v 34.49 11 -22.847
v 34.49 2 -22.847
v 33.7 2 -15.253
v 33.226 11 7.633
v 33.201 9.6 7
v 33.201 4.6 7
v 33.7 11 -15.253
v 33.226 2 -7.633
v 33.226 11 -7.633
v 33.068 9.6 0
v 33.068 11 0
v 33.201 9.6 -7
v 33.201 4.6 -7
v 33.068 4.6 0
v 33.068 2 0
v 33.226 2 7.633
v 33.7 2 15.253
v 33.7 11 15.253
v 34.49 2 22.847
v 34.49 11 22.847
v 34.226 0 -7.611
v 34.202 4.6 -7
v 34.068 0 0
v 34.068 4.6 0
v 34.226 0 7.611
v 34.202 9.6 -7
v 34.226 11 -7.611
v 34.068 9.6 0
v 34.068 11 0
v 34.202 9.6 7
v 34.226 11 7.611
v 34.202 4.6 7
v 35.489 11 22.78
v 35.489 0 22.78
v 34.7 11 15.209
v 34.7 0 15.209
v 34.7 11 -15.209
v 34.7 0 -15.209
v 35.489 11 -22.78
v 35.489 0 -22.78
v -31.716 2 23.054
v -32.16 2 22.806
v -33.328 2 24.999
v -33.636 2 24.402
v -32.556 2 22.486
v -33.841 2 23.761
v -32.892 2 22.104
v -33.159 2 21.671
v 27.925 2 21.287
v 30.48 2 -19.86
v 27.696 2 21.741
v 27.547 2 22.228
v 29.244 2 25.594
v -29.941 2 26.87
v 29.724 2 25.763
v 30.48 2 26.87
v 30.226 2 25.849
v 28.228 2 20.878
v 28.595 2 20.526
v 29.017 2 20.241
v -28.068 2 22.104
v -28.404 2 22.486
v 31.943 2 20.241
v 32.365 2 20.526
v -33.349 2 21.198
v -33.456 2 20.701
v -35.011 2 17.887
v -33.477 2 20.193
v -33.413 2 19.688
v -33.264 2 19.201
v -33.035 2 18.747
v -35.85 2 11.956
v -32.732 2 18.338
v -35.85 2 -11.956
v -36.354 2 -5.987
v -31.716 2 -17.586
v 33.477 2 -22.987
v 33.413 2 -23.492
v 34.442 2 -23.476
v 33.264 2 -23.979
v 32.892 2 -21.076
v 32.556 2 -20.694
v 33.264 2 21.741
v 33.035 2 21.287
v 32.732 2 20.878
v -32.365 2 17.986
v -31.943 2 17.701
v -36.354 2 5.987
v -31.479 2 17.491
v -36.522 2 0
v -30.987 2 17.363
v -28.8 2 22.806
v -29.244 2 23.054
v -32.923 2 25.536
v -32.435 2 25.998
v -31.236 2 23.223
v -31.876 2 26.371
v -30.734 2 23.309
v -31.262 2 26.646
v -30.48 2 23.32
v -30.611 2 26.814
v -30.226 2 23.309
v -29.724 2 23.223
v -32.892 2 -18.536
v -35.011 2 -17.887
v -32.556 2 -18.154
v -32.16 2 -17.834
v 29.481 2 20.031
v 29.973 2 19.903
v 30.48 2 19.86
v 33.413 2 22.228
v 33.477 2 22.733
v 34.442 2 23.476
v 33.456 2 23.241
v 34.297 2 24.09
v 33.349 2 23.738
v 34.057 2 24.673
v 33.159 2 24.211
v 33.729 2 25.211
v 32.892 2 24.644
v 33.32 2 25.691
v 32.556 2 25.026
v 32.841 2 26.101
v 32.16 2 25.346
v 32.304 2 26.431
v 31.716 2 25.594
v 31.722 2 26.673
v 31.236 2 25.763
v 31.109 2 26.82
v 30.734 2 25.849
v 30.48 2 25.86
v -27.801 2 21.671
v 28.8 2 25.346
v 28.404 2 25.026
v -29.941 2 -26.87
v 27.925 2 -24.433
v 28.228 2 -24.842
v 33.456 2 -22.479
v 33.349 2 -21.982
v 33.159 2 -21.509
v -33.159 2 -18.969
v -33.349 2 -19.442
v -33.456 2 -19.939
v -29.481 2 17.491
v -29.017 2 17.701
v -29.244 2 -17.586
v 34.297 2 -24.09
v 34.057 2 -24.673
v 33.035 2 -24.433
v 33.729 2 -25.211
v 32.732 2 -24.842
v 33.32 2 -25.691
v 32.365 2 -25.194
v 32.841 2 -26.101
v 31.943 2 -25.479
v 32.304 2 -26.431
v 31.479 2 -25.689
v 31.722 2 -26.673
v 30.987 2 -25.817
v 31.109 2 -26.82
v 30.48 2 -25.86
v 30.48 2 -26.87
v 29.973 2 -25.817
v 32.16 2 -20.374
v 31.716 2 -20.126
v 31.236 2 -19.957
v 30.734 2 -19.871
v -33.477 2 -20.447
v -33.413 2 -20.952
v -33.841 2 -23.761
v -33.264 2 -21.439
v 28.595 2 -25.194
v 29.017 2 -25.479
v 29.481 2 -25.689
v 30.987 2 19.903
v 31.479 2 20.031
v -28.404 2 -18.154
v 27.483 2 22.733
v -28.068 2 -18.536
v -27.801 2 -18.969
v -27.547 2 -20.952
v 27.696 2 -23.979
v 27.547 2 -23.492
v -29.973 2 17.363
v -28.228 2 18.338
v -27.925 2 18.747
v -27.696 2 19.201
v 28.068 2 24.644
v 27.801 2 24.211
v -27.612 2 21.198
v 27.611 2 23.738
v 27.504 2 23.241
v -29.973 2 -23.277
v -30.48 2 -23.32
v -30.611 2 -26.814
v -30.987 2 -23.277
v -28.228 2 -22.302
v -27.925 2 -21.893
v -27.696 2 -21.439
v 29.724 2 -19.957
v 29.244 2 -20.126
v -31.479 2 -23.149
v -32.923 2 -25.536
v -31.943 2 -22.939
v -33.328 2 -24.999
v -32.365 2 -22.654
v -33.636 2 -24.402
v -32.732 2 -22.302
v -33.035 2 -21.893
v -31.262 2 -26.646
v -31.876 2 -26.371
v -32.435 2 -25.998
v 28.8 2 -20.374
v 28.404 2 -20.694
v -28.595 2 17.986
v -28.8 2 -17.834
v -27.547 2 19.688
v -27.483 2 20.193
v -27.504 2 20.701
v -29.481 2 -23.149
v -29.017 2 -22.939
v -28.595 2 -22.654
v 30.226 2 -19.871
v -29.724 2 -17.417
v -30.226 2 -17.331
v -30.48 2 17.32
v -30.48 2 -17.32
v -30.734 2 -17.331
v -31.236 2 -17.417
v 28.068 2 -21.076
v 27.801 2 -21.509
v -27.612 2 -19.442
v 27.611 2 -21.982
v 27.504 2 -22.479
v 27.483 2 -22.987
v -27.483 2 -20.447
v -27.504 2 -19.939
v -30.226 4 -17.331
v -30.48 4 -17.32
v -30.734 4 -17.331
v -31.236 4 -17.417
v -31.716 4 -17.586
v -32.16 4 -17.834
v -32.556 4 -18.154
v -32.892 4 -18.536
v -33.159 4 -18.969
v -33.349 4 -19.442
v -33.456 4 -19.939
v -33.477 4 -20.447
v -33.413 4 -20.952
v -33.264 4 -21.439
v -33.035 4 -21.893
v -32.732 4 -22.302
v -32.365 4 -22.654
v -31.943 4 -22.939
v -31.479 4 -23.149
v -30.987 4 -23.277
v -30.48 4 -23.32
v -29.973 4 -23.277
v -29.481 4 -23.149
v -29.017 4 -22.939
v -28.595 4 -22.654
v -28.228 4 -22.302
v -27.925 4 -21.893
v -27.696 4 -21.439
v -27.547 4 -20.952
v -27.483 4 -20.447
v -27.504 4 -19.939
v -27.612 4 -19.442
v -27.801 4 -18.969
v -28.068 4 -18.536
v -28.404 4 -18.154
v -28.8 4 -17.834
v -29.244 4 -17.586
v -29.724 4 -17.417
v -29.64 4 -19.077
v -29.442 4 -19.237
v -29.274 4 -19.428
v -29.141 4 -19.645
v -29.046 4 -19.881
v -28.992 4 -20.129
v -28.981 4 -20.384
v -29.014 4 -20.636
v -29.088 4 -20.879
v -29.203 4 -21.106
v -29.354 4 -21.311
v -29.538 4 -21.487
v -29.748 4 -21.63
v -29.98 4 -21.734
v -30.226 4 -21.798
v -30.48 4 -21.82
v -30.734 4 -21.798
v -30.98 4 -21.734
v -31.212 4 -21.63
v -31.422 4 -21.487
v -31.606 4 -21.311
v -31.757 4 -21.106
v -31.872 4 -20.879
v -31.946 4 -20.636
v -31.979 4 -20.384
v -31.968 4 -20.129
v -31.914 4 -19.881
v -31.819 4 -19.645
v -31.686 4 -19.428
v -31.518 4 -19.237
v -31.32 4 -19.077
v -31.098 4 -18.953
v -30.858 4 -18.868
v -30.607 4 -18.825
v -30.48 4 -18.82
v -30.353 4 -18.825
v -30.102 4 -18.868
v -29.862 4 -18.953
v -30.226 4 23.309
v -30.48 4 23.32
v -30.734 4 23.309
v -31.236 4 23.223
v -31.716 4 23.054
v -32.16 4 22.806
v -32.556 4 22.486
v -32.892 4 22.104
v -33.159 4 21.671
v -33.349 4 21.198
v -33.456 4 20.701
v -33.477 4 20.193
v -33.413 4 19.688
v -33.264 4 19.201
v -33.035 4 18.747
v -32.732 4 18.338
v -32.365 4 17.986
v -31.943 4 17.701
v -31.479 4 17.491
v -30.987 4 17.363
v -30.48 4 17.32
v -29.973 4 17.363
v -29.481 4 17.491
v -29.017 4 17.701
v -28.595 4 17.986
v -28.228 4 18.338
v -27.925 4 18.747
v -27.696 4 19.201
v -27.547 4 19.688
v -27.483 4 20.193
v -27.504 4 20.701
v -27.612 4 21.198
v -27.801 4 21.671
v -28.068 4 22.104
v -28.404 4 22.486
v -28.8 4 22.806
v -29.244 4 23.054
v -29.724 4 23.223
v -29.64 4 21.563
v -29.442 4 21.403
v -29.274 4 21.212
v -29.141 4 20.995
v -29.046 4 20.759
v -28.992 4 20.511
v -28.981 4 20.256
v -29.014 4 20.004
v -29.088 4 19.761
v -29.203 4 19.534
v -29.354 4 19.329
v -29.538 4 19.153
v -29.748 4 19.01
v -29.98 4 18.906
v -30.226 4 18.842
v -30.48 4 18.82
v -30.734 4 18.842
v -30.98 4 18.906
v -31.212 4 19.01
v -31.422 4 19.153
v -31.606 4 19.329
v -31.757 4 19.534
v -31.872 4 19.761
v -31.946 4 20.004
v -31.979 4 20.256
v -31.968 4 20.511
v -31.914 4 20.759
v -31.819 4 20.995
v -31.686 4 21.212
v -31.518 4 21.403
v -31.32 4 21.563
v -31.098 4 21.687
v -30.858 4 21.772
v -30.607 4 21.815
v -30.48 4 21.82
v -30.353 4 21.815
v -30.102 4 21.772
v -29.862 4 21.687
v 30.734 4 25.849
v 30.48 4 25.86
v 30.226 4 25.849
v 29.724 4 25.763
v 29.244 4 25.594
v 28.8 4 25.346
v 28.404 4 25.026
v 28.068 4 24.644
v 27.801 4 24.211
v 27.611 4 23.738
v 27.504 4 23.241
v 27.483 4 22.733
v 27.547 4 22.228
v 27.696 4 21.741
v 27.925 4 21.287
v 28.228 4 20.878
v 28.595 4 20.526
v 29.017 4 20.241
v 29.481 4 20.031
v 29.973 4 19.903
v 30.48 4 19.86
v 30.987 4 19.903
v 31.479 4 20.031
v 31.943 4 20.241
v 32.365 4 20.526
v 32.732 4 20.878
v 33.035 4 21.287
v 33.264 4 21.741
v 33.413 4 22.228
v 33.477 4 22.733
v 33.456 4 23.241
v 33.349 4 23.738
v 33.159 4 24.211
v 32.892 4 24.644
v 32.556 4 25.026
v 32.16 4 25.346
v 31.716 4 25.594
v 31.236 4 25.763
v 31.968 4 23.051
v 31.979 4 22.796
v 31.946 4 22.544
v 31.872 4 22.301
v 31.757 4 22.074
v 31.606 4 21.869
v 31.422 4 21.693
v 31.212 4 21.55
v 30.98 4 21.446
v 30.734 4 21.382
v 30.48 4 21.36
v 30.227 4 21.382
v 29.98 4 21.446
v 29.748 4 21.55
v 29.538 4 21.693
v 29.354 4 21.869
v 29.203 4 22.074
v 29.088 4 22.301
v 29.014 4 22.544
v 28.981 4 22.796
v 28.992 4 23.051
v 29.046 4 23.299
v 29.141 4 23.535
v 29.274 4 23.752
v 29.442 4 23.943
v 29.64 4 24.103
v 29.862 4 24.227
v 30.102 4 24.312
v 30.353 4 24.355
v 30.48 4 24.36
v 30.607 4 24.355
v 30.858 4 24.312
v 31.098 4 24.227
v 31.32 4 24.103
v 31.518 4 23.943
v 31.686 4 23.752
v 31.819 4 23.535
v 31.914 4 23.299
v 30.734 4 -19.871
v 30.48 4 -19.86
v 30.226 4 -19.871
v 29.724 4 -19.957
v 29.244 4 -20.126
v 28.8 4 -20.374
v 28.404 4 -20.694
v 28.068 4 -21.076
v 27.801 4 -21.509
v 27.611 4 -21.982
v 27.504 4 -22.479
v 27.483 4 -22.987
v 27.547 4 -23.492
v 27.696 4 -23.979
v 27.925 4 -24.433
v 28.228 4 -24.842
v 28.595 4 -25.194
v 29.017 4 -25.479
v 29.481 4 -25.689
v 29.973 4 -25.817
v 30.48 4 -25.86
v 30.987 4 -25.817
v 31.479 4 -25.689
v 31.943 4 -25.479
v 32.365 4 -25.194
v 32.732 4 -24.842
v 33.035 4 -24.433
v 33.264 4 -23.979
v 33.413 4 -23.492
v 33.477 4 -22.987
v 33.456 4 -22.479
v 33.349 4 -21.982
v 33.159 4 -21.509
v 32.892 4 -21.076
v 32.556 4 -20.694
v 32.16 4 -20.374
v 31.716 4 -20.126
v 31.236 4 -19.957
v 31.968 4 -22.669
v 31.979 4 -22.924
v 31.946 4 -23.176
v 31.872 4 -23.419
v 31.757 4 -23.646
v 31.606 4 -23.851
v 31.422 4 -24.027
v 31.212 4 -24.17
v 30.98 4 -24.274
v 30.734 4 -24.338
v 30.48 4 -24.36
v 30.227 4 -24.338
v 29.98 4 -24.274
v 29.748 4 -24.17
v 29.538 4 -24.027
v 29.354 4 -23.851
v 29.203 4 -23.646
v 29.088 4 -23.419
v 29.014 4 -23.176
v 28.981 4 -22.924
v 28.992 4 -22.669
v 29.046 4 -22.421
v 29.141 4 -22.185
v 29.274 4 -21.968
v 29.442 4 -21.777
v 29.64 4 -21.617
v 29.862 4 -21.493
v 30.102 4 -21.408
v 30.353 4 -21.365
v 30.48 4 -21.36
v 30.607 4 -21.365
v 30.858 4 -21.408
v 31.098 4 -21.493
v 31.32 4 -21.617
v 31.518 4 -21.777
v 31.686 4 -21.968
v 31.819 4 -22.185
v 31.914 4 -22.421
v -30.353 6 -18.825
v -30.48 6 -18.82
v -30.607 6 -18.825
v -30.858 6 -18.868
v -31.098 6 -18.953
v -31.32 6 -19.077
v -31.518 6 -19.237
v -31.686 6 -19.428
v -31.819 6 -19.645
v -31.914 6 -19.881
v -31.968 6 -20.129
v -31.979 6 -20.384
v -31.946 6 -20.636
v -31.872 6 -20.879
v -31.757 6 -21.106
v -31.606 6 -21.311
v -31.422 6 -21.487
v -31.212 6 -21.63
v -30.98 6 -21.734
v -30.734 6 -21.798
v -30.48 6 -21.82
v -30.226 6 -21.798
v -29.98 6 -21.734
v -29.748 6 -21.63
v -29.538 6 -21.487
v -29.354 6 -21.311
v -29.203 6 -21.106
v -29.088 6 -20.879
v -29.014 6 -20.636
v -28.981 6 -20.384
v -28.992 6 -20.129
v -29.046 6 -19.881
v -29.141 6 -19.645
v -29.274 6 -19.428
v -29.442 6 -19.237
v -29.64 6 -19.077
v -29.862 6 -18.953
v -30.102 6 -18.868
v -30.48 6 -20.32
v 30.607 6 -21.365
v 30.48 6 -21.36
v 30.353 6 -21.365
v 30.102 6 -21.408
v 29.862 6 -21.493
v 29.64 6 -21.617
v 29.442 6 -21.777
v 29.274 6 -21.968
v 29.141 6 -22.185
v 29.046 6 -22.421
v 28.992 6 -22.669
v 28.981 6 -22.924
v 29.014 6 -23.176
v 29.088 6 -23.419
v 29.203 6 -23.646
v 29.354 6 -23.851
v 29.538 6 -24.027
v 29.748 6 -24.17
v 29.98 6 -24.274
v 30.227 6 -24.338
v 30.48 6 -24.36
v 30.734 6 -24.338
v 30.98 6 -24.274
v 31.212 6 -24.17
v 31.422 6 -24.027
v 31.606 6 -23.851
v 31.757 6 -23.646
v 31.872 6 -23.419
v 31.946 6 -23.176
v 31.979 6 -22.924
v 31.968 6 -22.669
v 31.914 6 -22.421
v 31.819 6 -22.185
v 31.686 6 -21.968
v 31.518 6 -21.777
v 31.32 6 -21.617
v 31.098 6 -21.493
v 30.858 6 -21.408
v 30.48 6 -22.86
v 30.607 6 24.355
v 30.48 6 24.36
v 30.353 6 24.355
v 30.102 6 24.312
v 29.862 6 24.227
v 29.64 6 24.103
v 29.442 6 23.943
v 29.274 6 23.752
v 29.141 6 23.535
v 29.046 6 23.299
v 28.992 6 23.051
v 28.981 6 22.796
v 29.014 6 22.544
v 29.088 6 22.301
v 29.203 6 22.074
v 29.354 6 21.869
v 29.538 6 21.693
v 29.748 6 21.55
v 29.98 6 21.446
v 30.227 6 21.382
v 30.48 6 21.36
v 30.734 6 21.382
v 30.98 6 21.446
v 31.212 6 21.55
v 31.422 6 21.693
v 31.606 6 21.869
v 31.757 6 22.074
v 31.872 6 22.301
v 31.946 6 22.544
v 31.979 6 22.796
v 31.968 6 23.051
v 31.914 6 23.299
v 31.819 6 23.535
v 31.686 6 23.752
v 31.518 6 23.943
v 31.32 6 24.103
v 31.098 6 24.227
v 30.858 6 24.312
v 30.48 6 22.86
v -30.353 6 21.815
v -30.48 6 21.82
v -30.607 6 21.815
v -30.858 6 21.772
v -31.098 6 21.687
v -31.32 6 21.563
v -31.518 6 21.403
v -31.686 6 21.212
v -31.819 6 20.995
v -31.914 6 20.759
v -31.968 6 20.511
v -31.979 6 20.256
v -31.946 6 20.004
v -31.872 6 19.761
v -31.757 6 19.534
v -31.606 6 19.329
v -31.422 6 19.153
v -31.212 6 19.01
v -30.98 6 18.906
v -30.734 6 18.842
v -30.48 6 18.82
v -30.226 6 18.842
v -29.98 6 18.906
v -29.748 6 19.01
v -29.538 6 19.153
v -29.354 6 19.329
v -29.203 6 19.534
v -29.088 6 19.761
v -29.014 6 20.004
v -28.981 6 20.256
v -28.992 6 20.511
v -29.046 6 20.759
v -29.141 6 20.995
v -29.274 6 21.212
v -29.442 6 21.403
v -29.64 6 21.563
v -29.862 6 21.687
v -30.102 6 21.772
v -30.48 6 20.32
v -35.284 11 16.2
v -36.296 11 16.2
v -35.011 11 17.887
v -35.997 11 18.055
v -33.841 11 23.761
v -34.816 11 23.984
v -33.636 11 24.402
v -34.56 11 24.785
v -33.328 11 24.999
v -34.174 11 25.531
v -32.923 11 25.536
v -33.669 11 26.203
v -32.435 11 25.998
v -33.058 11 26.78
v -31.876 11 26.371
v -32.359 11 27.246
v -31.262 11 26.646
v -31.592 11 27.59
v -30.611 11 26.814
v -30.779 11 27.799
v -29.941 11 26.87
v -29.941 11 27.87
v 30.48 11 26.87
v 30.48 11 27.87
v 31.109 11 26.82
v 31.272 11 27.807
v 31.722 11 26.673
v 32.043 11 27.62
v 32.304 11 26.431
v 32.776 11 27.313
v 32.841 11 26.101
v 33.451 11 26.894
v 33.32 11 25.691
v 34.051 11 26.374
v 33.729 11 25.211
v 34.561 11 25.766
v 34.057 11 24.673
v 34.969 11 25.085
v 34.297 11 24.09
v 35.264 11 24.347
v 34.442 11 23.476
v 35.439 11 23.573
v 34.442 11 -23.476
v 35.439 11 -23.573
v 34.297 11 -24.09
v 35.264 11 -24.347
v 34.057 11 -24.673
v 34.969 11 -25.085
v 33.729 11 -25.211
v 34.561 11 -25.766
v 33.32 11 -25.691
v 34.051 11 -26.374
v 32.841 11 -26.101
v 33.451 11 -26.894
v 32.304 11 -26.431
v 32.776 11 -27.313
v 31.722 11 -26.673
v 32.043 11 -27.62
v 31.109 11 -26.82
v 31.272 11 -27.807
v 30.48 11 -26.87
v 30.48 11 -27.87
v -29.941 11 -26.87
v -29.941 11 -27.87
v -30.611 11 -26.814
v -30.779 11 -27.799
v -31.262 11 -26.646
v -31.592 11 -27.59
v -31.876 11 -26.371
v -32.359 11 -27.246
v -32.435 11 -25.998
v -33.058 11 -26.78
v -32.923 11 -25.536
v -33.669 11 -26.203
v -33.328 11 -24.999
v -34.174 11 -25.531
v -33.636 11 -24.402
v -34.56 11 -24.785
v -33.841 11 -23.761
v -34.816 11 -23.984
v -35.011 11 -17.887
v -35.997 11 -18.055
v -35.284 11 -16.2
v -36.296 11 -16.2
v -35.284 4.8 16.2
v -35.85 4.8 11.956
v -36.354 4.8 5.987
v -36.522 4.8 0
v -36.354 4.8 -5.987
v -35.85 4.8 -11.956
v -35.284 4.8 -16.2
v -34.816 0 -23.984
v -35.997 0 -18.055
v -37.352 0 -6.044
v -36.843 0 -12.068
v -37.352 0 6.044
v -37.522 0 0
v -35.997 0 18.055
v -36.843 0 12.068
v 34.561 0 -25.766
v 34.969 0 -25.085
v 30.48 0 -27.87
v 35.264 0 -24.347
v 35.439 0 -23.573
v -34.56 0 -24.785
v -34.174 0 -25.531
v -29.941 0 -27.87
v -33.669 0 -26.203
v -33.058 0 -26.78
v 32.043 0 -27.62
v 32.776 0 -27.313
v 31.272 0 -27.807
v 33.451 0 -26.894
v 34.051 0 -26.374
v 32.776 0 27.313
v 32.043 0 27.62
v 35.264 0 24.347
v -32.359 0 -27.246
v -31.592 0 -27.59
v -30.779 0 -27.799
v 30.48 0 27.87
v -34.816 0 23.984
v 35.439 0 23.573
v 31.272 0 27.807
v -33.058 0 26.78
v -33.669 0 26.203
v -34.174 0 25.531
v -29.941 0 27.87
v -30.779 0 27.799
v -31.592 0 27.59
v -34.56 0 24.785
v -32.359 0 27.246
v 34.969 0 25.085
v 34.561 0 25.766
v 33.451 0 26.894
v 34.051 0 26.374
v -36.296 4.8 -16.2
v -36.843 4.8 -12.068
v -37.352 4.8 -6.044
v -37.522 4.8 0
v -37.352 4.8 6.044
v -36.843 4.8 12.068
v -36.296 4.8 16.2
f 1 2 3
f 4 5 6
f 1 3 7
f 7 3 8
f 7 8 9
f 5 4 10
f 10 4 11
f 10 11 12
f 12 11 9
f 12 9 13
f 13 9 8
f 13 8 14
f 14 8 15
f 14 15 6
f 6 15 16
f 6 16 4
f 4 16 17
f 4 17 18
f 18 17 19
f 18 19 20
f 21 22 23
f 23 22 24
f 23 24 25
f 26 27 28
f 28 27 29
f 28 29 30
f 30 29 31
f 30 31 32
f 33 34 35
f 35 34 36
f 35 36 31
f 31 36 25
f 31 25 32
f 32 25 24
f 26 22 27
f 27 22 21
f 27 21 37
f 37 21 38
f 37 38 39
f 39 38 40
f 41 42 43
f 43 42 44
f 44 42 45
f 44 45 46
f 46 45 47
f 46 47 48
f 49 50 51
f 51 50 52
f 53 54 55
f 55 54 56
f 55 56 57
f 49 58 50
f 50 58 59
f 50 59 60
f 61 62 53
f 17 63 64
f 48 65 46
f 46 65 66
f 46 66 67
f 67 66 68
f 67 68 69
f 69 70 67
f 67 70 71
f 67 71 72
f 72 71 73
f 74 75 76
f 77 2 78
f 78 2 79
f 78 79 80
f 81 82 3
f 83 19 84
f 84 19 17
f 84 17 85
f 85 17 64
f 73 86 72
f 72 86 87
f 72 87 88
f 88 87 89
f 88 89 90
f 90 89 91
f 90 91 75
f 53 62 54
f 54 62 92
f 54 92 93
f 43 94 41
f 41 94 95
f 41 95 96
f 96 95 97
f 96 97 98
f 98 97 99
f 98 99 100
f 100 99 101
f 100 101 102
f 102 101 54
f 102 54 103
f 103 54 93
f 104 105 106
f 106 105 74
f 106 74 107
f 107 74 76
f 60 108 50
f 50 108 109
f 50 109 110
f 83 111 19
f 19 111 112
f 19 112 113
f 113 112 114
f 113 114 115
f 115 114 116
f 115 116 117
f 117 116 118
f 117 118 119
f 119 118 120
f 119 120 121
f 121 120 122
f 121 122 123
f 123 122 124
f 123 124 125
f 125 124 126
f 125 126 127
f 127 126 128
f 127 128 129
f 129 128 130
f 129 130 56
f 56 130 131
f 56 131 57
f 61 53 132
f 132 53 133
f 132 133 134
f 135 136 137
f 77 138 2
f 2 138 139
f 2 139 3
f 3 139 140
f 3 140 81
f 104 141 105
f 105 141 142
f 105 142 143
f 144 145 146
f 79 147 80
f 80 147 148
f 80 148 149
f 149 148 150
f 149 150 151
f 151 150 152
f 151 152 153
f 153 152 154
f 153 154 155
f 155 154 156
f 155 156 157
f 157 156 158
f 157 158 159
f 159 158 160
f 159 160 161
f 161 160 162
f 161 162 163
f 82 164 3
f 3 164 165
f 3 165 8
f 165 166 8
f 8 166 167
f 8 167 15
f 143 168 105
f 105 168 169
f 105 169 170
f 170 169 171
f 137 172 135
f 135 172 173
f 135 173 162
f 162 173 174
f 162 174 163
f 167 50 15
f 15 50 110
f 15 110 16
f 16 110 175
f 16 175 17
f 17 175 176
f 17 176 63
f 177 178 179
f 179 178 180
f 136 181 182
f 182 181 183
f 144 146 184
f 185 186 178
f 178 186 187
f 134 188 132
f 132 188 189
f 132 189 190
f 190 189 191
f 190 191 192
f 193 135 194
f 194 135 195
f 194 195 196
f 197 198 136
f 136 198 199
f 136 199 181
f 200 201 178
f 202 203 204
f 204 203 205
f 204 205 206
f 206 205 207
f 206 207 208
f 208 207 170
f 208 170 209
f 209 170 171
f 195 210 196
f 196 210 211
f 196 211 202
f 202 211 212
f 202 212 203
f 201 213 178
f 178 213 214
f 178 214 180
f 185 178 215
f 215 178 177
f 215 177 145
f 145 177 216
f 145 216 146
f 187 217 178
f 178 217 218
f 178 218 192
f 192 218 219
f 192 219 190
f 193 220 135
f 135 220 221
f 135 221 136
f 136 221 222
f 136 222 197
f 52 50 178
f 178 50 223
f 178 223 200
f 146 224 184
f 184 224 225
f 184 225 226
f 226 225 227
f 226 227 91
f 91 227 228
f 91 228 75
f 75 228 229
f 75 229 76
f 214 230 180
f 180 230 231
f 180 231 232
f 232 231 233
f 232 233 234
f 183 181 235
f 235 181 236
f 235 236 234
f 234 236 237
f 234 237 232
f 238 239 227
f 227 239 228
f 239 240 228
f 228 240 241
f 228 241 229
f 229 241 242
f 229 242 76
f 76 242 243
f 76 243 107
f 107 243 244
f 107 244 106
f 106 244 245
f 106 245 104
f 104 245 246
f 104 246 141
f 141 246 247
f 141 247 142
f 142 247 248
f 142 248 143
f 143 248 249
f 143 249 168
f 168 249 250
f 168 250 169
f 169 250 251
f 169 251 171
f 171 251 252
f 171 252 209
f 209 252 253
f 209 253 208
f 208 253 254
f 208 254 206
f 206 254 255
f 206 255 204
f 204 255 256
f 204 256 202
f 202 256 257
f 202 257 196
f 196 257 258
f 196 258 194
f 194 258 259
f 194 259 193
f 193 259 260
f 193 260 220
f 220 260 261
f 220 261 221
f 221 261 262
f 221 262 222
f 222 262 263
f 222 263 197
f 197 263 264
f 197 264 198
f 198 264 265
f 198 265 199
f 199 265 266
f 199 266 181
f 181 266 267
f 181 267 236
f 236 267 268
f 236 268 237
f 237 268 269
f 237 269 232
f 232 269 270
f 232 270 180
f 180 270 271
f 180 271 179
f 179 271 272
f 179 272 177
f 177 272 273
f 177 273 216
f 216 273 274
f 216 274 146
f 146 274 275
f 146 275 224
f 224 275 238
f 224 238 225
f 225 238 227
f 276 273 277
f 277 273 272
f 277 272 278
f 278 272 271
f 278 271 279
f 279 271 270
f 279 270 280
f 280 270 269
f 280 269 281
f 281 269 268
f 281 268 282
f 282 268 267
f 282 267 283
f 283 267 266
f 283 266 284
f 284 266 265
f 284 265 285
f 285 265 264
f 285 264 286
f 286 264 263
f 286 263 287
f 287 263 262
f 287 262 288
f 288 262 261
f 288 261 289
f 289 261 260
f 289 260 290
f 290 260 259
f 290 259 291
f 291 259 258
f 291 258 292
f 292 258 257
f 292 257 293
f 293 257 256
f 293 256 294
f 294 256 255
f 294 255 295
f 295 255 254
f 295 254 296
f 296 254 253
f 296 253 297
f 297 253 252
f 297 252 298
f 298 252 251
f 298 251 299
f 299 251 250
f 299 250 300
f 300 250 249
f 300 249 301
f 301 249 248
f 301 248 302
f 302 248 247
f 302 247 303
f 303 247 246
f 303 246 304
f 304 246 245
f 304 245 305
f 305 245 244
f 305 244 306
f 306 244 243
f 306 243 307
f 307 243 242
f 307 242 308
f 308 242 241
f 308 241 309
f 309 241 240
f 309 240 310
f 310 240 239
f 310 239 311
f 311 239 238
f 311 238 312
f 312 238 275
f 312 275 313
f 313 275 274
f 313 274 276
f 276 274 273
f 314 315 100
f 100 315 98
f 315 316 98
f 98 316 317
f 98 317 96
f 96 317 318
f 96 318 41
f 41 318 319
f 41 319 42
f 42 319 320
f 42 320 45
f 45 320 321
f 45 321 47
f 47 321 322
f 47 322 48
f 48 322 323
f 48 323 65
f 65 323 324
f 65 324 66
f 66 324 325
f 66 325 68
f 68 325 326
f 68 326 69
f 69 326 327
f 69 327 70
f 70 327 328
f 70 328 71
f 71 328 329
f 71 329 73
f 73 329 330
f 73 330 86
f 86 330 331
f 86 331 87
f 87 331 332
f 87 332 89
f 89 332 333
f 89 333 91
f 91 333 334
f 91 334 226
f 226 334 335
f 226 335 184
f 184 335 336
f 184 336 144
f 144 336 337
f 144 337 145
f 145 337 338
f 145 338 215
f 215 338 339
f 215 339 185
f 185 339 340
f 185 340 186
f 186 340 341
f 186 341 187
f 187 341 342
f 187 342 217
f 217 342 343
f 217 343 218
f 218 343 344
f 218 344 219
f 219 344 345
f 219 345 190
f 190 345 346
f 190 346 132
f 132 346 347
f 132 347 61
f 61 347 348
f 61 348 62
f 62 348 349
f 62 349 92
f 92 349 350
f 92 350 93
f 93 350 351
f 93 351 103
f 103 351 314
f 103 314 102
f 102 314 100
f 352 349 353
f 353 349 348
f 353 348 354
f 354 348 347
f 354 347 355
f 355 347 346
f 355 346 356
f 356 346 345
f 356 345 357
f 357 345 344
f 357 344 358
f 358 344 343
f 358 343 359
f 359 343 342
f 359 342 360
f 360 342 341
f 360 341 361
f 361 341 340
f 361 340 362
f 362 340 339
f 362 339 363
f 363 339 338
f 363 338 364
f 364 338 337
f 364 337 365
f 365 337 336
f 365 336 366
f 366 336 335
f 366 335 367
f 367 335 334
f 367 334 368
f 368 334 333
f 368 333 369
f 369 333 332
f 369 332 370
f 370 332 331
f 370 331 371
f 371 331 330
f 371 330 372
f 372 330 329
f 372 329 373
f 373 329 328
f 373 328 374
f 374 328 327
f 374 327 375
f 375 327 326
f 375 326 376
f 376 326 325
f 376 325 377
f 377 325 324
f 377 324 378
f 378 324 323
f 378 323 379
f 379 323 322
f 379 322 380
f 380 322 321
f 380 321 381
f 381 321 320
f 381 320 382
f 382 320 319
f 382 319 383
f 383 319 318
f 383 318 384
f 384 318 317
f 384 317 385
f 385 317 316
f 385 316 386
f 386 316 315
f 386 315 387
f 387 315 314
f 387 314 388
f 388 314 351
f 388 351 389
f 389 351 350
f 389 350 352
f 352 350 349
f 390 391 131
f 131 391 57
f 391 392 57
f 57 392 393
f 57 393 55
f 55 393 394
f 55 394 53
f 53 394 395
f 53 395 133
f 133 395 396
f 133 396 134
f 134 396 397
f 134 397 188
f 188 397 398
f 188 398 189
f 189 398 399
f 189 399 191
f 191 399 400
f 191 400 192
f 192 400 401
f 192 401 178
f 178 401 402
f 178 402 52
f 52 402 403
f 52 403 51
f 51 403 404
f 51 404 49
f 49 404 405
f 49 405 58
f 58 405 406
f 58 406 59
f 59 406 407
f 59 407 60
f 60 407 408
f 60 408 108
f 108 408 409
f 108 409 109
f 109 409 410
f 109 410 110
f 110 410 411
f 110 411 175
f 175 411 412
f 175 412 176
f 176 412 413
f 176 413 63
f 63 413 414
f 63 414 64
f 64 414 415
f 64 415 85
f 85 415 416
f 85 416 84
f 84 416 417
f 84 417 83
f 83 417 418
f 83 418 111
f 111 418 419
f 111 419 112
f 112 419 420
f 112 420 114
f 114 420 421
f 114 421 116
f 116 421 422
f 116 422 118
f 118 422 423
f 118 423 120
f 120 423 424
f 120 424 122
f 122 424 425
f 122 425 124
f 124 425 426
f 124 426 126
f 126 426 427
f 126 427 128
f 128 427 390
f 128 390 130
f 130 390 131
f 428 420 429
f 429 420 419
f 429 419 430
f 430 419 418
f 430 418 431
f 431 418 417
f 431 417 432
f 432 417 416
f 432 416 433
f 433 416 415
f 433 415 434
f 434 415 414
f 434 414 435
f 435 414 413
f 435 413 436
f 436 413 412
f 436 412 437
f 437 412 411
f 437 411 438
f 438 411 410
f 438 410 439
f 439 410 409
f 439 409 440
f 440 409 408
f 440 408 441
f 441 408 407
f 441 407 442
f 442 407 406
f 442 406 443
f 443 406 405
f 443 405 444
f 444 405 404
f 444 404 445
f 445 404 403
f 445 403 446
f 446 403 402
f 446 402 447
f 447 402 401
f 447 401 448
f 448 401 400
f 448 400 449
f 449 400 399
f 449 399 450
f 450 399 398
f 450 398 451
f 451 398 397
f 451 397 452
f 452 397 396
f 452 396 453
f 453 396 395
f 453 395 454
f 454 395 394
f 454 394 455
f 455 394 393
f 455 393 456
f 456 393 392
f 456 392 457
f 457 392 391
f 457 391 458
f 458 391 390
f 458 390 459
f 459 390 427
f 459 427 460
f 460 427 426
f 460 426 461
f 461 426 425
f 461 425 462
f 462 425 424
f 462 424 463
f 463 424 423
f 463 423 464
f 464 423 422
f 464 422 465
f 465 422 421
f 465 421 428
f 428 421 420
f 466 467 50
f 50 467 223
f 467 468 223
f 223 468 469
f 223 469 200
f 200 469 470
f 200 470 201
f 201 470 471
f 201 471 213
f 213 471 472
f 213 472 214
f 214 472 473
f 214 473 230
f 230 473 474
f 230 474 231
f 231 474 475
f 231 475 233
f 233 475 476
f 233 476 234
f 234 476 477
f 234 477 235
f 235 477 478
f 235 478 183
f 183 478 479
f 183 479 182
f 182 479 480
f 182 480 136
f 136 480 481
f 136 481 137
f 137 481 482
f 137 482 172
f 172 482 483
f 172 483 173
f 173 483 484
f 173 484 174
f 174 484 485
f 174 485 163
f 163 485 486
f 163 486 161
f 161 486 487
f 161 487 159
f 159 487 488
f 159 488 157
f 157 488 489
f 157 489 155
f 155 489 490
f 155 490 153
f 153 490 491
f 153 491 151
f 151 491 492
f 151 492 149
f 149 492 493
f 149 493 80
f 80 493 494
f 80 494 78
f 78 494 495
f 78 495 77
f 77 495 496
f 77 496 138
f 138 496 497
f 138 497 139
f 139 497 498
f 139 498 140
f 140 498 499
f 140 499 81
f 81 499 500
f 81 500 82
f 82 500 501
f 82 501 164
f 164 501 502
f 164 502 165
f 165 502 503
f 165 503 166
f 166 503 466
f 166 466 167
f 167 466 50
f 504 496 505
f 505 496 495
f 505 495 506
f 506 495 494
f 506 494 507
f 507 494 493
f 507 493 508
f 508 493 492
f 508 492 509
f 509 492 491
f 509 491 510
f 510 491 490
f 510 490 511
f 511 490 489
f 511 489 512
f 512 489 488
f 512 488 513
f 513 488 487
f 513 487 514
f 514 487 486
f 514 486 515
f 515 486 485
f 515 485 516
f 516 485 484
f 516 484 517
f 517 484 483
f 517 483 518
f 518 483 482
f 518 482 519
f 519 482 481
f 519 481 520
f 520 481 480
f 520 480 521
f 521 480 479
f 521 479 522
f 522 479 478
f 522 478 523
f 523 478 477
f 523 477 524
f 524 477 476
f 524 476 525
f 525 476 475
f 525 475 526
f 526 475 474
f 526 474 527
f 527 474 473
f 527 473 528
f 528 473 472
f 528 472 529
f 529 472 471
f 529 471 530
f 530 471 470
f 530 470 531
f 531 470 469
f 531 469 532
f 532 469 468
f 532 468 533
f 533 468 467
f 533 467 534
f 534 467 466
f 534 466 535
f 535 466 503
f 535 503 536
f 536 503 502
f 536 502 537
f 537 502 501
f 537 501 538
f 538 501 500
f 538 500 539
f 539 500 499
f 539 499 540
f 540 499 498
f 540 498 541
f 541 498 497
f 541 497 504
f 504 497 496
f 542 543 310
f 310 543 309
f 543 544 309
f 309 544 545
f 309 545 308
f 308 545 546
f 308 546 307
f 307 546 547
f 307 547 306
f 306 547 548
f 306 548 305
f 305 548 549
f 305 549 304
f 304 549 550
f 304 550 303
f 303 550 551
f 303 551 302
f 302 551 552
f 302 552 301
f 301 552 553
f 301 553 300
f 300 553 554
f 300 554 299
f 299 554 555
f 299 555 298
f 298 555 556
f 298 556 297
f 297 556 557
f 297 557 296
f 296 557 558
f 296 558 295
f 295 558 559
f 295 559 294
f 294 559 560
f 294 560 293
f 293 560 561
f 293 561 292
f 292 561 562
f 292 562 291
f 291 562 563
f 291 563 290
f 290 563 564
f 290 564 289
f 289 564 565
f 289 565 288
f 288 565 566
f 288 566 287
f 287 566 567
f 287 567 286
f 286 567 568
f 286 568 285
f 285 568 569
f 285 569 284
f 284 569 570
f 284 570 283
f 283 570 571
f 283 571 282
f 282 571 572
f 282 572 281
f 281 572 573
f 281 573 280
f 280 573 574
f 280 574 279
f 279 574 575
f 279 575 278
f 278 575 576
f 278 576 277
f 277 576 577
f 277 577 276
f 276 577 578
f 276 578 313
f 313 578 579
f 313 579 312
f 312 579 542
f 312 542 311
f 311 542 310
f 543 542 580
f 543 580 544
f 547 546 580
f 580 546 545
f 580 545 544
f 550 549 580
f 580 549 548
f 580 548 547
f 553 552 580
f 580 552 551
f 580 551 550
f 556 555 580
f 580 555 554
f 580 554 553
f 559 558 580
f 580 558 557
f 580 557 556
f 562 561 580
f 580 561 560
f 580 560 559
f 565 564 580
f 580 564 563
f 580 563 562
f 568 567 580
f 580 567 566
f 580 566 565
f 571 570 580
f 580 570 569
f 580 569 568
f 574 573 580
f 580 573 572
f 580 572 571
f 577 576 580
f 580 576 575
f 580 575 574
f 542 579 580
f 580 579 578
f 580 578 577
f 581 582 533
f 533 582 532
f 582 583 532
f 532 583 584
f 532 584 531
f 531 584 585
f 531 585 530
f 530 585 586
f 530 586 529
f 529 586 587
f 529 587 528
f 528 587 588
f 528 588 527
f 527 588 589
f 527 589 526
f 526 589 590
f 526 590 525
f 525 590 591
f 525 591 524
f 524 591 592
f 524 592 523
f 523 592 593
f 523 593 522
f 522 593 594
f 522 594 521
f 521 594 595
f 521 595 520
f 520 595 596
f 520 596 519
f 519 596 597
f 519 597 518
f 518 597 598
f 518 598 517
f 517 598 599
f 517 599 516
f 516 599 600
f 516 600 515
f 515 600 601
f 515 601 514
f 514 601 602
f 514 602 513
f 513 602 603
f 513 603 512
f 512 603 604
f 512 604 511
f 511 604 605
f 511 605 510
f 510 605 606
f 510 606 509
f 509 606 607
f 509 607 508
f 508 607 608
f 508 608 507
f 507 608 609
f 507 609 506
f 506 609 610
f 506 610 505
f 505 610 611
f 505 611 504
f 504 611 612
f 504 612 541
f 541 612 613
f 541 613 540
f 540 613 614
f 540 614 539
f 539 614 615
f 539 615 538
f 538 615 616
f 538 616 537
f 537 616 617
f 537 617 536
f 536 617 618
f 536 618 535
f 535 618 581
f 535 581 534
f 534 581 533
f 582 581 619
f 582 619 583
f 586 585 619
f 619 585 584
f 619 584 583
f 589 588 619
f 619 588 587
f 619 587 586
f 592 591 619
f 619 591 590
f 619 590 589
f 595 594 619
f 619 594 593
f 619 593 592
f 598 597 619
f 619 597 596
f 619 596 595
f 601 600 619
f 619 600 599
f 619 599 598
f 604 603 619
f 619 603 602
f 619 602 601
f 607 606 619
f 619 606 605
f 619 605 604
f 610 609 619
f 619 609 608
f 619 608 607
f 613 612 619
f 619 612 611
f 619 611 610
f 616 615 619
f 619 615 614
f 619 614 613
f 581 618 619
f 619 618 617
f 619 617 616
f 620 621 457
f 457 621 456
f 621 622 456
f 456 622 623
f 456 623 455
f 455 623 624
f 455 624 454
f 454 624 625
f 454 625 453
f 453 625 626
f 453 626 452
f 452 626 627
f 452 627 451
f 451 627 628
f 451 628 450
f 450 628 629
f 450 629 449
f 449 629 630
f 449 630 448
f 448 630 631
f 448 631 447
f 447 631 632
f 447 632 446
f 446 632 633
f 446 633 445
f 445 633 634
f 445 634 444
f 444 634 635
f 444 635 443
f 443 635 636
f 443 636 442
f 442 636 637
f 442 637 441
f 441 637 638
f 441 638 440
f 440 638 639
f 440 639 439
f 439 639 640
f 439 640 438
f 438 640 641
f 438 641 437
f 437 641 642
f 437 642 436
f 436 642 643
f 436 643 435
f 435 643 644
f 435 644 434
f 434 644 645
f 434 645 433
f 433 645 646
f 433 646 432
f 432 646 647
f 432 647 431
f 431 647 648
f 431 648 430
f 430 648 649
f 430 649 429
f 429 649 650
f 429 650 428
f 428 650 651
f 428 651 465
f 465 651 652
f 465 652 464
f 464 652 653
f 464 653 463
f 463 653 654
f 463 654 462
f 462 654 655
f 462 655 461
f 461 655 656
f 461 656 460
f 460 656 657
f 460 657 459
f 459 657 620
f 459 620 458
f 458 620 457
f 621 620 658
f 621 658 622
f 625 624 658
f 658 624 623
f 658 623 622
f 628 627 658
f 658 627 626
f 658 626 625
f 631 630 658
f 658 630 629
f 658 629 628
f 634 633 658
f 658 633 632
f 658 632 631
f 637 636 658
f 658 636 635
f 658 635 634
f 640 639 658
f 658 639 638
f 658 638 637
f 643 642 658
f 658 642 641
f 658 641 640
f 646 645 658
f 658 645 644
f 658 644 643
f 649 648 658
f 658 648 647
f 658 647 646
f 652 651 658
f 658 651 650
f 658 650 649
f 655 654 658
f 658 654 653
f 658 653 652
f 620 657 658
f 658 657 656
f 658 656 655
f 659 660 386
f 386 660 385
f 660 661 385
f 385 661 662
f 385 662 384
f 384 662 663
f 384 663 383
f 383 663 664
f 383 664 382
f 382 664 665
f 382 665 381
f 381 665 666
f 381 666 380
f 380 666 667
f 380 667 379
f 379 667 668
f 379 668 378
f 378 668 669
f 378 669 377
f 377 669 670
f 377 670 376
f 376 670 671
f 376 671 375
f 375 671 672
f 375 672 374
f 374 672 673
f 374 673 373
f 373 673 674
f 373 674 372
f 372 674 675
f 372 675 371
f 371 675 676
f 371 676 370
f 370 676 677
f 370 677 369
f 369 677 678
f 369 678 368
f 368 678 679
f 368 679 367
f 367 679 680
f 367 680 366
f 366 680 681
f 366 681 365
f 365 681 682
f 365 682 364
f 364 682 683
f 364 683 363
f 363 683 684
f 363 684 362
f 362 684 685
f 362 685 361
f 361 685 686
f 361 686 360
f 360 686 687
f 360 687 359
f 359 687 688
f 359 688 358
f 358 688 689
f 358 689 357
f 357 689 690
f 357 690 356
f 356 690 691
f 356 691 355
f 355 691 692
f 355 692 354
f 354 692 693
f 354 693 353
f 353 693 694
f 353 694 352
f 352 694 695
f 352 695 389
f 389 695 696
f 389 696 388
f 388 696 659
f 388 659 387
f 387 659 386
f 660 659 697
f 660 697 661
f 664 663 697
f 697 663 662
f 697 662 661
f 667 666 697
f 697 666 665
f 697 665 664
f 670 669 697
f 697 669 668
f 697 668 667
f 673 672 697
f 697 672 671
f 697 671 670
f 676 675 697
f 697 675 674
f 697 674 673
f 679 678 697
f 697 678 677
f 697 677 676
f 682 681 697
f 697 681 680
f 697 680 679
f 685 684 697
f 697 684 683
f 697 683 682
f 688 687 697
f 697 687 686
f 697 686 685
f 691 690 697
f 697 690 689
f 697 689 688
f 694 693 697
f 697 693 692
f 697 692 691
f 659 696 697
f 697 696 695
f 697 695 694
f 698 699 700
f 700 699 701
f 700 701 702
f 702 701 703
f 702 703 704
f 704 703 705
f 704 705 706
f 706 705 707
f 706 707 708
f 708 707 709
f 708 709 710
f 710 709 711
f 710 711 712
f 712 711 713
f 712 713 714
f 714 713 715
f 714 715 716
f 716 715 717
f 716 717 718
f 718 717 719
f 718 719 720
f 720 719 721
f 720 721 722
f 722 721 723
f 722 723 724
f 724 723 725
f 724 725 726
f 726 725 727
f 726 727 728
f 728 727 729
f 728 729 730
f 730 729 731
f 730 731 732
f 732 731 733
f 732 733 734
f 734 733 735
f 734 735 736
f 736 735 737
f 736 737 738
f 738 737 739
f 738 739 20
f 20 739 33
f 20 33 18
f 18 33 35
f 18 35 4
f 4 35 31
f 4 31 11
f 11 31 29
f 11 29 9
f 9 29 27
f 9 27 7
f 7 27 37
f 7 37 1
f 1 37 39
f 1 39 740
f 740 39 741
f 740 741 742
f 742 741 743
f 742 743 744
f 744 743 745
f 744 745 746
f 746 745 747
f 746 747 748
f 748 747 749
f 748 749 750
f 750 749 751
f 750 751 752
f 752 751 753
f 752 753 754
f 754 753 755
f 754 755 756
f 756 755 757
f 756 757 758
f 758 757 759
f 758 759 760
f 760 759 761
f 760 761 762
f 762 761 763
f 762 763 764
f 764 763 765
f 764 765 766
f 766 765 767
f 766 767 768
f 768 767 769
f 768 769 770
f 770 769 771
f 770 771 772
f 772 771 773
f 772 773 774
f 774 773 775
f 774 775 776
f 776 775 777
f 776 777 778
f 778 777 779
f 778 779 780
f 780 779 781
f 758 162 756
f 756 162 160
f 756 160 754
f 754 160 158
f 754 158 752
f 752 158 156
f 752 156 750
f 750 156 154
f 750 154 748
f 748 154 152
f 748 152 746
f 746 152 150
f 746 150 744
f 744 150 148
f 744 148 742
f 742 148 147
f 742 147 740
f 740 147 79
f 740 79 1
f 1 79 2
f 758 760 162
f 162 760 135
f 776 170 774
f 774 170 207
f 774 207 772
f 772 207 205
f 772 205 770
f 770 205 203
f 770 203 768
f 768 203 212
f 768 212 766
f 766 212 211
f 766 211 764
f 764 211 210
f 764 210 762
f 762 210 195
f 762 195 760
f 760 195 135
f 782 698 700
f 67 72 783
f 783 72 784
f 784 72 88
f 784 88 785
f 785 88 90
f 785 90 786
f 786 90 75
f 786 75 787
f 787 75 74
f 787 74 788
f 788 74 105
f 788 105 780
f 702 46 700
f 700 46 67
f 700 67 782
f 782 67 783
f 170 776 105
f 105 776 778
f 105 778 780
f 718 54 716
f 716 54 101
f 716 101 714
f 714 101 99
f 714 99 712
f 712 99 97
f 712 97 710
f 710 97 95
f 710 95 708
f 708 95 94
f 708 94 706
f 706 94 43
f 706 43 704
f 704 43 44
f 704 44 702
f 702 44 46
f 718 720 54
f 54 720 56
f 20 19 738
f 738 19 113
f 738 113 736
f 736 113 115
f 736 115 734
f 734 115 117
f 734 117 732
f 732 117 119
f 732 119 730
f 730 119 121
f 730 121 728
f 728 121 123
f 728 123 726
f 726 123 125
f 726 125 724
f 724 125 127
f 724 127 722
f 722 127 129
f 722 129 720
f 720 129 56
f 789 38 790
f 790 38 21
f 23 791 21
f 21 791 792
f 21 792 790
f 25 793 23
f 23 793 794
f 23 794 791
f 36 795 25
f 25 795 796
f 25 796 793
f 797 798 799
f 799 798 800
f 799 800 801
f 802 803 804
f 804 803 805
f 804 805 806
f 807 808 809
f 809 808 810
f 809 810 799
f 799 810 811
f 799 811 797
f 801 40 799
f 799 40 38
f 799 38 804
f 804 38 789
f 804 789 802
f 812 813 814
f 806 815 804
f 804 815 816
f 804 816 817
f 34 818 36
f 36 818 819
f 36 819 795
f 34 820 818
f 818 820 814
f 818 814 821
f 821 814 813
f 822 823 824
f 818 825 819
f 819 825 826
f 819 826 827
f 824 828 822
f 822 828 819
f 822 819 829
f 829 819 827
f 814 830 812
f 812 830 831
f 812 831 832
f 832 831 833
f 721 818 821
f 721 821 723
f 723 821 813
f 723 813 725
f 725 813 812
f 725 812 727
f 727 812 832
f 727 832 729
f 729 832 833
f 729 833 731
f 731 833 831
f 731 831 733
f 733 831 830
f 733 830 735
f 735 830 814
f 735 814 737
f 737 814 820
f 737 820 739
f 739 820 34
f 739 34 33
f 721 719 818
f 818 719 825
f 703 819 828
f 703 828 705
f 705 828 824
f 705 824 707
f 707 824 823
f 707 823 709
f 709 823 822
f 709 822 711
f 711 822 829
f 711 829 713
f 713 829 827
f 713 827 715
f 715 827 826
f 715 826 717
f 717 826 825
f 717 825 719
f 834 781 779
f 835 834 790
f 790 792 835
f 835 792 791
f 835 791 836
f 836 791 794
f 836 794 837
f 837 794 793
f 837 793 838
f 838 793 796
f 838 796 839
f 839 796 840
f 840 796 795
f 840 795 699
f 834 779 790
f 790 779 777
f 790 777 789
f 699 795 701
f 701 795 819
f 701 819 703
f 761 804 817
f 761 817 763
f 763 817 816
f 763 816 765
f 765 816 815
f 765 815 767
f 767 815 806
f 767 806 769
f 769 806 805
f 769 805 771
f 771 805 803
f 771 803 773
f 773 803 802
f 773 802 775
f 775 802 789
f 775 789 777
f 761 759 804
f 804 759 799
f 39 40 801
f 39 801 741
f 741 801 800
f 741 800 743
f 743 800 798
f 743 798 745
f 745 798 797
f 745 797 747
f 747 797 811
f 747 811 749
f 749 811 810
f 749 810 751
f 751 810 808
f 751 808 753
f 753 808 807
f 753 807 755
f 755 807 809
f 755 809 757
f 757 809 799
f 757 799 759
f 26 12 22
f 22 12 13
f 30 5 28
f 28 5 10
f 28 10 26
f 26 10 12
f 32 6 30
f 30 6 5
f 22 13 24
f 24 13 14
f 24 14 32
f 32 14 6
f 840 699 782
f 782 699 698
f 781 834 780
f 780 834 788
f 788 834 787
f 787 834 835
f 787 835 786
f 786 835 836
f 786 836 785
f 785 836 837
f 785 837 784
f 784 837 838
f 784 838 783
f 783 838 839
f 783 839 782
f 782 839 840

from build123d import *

# Parameters (mm, degrees)
BOSS_EXTRUDE7_DEPTH     = 2
SKETCH8_R               = 3
BOSS_EXTRUDE8_DEPTH     = 2
SKETCH9_R               = 1.5
BOSS_EXTRUDE9_DEPTH     = 2
BOSS_EXTRUDE10_DEPTH    = 9
SKETCH12_W              = 14
SKETCH12_H              = 5
CUT_EXTRUDE5_DEPTH      = 10
CUT_EXTRUDE5_DEPTH_BACK = 10
SKETCH13_W              = 8.729840012
SKETCH13_H              = 32.4
CUT_EXTRUDE6_DEPTH      = 6.2


with BuildPart() as part:
    # Sketch7 → Boss-Extrude7 (new body)
    with BuildSketch(Plane(origin=(0, 0, 0), x_dir=(1, 0, 0), z_dir=(0, 1, 0))):
        with BuildLine():
            Line((30.48, 27.87), (-29.941284627, 27.87))
            ThreePointArc((-29.941284627, 27.87), (-33.058077828, 26.779680312), (-34.815550633, 23.984240056))
            ThreePointArc((-34.815550633, 23.984240056), (-37.522, 0), (-34.815550633, -23.984240056))
            ThreePointArc((-34.815550633, -23.984240056), (-33.058077828, -26.779680312), (-29.941284627, -27.87))
            Line((-29.941284627, -27.87), (30.48, -27.87))
            ThreePointArc((30.48, -27.87), (34.050723427, -26.374261545), (35.489363684, -22.780153375))
            ThreePointArc((35.489363684, -22.780153375), (34.068, 0), (35.489363684, 22.780153375))
            ThreePointArc((35.489363684, 22.780153375), (34.050723427, 26.374261545), (30.48, 27.87))
        make_face()
    extrude(amount=BOSS_EXTRUDE7_DEPTH)

    # Sketch8 → Boss-Extrude8 (add)
    with BuildSketch(Plane(origin=(0, 2, 0), x_dir=(1, 0, 0), z_dir=(0, 1, 0))):
        with Locations((-30.48, 20.32)):
            Circle(SKETCH8_R)
        with Locations((-30.48, -20.32)):
            Circle(SKETCH8_R)
        with Locations((30.48, -22.86)):
            Circle(SKETCH8_R)
        with Locations((30.48, 22.86)):
            Circle(SKETCH8_R)
    extrude(amount=BOSS_EXTRUDE8_DEPTH)

    # Sketch9 → Boss-Extrude9 (add)
    with BuildSketch(Plane(origin=(0, 4, 0), x_dir=(1, 0, 0), z_dir=(0, 1, 0))):
        with Locations((-30.48, 20.32)):
            Circle(SKETCH9_R)
        with Locations((30.48, 22.86)):
            Circle(SKETCH9_R)
        with Locations((30.48, -22.86)):
            Circle(SKETCH9_R)
        with Locations((-30.48, -20.32)):
            Circle(SKETCH9_R)
    extrude(amount=BOSS_EXTRUDE9_DEPTH)

    # Sketch10 → Boss-Extrude10 (add)
    with BuildSketch(Plane(origin=(0, 2, 0), x_dir=(1, 0, 0), z_dir=(0, 1, 0))):
        with BuildLine():
            Line((30.48, 27.87), (-29.941284627, 27.87))
            ThreePointArc((-29.941284627, 27.87), (-33.058077828, 26.779680312), (-34.815550633, 23.984240056))
            ThreePointArc((-34.815550633, 23.984240056), (-37.522, 0), (-34.815550633, -23.984240056))
            ThreePointArc((-34.815550633, -23.984240056), (-33.058077828, -26.779680312), (-29.941284627, -27.87))
            Line((-29.941284627, -27.87), (30.48, -27.87))
            ThreePointArc((30.48, -27.87), (34.050723427, -26.374261545), (35.489363684, -22.780153375))
            ThreePointArc((35.489363684, -22.780153375), (34.068, 0), (35.489363684, 22.780153375))
            ThreePointArc((35.489363684, 22.780153375), (34.050723427, 26.374261545), (30.48, 27.87))
        make_face()
        with BuildLine():
            Line((-29.941284627, -26.87), (30.48, -26.87))
            ThreePointArc((30.48, -26.87), (33.319950466, -25.691038917), (34.489980196, -22.847397183))
            ThreePointArc((34.489980196, -22.847397183), (33.068, 0), (34.489980196, 22.847397183))
            ThreePointArc((34.489980196, 22.847397183), (33.319950466, 25.691038917), (30.48, 26.87))
            Line((30.48, 26.87), (-29.941284627, 26.87))
            ThreePointArc((-29.941284627, 26.87), (-32.434719188, 25.997744249), (-33.840697431, 23.761392045))
            ThreePointArc((-33.840697431, 23.761392045), (-36.522, 0), (-33.840697431, -23.761392045))
            ThreePointArc((-33.840697431, -23.761392045), (-32.434719188, -25.997744249), (-29.941284627, -26.87))
        make_face(mode=Mode.SUBTRACT)
    extrude(amount=BOSS_EXTRUDE10_DEPTH)

    # Sketch12 → Cut-Extrude5 (cut, two sides)
    with BuildSketch(Plane(origin=(34.068, 0, 0), x_dir=(0, 0, -1), z_dir=(1, 0, 0))) as cut_extrude5_sk:
        with Locations((0, 7.1)):
            Rectangle(SKETCH12_W, SKETCH12_H)
    extrude(amount=CUT_EXTRUDE5_DEPTH, mode=Mode.SUBTRACT)
    extrude(cut_extrude5_sk.sketch, amount=-CUT_EXTRUDE5_DEPTH_BACK, mode=Mode.SUBTRACT)

    # Sketch13 → Cut-Extrude6 (cut)
    with BuildSketch(Plane(origin=(0, 11, 0), x_dir=(1, 0, 0), z_dir=(0, 1, 0))):
        with Locations((-37.029964161, 0)):
            Rectangle(SKETCH13_W, SKETCH13_H)
    extrude(amount=-CUT_EXTRUDE6_DEPTH, mode=Mode.SUBTRACT)


solid = part.part
